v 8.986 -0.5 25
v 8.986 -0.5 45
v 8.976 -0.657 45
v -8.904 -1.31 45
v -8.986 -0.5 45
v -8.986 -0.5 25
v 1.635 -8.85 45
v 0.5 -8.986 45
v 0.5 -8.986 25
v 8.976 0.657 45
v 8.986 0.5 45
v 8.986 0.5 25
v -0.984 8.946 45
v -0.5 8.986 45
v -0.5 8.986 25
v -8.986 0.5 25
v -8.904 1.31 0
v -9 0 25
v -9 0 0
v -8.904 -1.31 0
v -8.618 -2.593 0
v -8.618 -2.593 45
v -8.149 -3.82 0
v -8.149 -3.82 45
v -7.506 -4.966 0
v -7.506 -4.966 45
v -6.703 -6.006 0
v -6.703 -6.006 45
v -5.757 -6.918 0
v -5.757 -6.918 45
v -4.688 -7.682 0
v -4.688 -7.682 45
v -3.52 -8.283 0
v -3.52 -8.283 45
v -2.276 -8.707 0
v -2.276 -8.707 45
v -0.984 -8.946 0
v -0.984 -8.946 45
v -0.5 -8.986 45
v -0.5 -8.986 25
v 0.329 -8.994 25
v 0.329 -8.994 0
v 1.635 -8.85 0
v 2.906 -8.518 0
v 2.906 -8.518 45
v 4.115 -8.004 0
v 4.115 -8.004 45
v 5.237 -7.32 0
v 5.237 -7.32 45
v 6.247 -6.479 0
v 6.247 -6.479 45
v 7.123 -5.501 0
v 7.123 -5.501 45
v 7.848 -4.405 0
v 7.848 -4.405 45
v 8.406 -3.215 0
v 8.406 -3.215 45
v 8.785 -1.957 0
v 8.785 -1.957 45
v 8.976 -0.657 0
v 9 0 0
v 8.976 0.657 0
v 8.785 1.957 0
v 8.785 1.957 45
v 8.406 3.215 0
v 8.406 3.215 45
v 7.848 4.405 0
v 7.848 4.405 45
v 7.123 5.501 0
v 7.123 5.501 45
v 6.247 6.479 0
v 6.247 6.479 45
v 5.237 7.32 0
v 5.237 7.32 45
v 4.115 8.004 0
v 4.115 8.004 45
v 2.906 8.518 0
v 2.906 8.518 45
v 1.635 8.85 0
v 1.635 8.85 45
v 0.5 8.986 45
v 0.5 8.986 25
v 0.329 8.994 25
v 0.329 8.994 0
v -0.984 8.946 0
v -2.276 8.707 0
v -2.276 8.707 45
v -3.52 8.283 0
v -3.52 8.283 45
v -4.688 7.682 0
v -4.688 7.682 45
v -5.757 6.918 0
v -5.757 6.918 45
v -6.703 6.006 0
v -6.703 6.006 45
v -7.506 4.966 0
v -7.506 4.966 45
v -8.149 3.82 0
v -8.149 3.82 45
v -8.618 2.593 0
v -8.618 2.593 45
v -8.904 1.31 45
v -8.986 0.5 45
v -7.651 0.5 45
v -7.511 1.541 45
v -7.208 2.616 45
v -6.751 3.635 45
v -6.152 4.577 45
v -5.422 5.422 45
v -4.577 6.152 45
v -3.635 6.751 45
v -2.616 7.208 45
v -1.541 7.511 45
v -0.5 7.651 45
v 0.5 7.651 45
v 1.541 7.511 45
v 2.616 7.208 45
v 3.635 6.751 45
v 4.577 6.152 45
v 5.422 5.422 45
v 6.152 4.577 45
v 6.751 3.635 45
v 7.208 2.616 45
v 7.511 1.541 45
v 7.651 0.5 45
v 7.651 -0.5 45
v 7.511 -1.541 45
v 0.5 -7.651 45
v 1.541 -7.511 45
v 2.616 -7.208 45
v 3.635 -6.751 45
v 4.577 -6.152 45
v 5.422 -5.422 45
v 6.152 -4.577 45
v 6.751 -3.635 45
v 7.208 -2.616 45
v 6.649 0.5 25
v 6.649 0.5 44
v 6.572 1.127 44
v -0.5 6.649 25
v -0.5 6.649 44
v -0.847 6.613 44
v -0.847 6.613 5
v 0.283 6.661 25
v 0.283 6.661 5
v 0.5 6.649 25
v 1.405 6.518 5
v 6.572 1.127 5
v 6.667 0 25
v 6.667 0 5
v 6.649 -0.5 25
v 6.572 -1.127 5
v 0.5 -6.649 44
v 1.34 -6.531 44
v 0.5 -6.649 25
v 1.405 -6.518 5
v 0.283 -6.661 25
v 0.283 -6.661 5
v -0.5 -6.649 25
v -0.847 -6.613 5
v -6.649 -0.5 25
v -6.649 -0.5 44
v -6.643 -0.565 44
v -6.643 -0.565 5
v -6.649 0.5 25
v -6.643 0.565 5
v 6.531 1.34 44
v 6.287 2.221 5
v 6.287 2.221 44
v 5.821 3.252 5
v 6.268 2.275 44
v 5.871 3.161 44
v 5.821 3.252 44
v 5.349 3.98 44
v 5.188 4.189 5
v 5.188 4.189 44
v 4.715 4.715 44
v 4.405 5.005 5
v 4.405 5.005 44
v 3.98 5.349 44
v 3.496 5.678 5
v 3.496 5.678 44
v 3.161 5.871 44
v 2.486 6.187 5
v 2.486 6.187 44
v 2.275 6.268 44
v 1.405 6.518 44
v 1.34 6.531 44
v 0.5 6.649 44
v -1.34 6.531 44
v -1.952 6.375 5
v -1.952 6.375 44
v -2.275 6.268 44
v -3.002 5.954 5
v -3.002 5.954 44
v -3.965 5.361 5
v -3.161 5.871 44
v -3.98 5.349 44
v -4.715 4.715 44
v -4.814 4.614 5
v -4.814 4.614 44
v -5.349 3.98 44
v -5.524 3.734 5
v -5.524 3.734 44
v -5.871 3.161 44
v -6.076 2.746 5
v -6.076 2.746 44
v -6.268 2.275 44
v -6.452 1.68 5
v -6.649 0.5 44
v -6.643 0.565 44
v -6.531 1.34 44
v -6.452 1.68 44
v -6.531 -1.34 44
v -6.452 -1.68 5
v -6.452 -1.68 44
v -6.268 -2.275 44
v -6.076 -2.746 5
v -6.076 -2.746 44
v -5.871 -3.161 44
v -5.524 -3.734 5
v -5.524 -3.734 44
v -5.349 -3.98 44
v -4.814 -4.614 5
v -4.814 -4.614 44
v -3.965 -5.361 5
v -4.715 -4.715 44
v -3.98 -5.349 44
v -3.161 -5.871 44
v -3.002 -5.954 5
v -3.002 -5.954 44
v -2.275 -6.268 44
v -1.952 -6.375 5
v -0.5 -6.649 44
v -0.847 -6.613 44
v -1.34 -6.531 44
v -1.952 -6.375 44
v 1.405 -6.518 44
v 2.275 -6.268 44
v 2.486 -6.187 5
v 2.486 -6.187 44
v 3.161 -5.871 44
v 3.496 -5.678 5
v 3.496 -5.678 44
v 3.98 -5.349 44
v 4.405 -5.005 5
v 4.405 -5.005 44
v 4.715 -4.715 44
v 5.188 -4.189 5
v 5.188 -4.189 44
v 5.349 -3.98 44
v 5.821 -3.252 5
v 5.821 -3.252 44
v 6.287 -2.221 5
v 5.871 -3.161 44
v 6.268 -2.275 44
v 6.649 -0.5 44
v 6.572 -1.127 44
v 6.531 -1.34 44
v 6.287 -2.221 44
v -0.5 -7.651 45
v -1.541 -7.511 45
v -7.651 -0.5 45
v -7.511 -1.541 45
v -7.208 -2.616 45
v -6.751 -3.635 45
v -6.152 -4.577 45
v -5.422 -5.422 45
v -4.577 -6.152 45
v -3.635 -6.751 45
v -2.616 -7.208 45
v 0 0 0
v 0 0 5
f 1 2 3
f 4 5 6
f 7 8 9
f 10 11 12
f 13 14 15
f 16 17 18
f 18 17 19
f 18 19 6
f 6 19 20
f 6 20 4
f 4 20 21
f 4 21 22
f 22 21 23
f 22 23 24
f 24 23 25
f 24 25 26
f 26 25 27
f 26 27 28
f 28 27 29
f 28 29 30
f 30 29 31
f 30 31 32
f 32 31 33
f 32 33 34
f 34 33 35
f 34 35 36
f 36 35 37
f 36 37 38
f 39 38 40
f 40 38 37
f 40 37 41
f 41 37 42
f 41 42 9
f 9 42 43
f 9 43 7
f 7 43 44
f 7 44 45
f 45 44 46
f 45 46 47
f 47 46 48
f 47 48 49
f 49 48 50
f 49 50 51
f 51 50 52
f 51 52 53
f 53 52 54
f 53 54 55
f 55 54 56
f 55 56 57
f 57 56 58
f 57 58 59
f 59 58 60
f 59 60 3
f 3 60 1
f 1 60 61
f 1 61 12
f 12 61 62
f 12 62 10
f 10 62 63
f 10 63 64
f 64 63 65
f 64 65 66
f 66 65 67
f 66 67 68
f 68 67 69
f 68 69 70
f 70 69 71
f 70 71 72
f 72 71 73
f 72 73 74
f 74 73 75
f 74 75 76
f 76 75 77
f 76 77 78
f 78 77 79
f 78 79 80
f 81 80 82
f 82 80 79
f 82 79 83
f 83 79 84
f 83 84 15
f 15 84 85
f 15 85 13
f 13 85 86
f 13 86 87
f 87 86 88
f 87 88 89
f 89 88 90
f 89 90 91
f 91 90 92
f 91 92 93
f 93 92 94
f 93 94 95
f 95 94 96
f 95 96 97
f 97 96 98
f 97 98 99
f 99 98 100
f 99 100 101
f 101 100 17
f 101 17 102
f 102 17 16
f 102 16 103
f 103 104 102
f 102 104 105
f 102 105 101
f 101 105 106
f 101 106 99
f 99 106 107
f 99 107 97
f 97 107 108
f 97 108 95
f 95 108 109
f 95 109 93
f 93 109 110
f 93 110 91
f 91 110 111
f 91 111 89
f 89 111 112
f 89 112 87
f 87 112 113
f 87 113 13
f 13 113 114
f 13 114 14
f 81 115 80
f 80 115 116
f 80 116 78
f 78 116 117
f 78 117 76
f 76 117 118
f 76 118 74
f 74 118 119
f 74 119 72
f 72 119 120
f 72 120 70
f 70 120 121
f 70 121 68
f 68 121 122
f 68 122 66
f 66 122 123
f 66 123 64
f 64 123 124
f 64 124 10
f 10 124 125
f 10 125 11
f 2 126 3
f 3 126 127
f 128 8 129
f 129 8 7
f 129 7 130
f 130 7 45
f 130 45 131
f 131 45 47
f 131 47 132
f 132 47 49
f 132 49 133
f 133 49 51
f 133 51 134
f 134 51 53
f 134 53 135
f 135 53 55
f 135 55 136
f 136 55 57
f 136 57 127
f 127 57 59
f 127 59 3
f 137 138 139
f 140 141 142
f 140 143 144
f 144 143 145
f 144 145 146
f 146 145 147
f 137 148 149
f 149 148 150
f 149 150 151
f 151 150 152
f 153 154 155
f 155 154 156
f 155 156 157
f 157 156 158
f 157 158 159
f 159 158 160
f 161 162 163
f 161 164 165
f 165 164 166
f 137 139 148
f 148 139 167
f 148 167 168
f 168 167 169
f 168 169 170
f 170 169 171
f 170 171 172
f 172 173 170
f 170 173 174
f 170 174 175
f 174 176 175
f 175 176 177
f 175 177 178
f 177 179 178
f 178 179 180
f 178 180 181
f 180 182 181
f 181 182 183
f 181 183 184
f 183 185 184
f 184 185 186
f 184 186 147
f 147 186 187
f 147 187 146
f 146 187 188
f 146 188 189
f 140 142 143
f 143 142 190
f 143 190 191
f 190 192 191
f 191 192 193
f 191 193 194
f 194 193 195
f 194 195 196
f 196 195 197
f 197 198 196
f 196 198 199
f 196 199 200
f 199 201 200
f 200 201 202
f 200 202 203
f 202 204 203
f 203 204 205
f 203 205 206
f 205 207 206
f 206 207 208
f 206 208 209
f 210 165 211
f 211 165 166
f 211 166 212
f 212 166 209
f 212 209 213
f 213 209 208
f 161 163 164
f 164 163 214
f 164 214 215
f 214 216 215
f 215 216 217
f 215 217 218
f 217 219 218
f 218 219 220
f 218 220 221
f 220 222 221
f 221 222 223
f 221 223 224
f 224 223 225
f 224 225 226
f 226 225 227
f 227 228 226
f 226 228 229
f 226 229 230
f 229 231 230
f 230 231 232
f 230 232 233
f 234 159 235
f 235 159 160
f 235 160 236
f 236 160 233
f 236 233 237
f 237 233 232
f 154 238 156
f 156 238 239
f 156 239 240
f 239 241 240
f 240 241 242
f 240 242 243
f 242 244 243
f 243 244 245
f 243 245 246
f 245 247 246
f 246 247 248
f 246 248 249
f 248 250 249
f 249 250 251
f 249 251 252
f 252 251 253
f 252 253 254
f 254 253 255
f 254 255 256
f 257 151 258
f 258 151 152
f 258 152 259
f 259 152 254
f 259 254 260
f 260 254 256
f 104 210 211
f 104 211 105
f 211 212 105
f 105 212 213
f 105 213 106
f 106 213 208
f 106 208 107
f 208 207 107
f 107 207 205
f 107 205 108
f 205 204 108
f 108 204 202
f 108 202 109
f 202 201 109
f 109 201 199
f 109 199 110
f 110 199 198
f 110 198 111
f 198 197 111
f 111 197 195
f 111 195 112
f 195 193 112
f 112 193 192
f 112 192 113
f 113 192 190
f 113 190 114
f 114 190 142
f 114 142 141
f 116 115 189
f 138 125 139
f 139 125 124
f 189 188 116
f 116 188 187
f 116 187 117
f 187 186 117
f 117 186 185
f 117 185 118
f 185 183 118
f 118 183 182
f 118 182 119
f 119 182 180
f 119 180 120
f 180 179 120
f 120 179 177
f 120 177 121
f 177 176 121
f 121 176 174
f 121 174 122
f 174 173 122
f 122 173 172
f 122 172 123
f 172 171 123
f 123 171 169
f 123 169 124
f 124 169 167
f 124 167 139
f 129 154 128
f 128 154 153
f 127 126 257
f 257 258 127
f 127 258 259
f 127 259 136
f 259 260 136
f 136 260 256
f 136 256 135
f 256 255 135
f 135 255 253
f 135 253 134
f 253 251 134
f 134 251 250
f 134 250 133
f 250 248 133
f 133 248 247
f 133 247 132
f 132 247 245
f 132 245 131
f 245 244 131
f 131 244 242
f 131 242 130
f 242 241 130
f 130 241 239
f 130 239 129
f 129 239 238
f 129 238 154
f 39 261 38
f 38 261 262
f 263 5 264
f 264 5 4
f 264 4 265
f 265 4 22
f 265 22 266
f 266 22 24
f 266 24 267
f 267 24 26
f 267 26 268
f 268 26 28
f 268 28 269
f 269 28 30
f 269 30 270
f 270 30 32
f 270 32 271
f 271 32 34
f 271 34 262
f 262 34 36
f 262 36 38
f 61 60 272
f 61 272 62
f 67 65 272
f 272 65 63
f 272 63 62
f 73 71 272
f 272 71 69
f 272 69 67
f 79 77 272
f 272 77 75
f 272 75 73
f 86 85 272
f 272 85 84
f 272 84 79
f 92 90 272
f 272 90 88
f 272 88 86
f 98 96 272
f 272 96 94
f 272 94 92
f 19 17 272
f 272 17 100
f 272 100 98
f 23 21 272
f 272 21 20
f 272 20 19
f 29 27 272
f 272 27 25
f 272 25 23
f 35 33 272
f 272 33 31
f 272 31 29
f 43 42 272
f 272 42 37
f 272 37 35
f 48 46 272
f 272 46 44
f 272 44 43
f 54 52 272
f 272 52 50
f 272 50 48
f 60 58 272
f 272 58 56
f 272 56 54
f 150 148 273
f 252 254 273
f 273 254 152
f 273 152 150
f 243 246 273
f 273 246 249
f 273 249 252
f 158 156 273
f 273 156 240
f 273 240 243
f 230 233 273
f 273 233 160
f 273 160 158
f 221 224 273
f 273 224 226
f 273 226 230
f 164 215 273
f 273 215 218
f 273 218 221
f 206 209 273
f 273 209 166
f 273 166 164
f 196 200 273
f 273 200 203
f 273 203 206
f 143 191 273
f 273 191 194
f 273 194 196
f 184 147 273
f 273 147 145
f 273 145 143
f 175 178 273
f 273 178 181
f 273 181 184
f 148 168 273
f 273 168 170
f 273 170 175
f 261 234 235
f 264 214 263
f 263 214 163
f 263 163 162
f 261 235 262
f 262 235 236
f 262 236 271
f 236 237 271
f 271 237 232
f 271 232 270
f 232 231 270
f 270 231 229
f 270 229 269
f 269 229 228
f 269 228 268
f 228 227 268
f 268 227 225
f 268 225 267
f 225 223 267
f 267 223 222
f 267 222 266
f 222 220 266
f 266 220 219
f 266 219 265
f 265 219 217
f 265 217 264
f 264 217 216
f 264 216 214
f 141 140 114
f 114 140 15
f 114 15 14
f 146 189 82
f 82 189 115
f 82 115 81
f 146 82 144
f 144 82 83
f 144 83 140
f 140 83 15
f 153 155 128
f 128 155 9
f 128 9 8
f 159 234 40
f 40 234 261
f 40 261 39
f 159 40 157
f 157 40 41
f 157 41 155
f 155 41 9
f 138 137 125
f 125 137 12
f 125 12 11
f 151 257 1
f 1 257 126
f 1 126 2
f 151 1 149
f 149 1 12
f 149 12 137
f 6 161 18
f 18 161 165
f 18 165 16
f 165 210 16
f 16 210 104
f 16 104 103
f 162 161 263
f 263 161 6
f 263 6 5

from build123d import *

# Parameters (mm, degrees)
SKETCH1_R           = 9
BOSS_EXTRUDE1_DEPTH = 45
SKETCH2_R           = 6.6675
CUT_EXTRUDE1_DEPTH  = 40
CHAMFER1_SIZE       = 1
SKETCH3_W           = 22.613634382
SKETCH3_H           = 1
SKETCH3_W_2         = 1
SKETCH3_H_2         = 23.145081594
CUT_EXTRUDE2_DEPTH  = 20


with BuildPart() as part:
    # Sketch1 → Boss-Extrude1 (new body)
    with BuildSketch(Plane.XY):
        with Locations(Location((0, 0, 0), (0, 0, 180))):
            Circle(SKETCH1_R)
    extrude(amount=BOSS_EXTRUDE1_DEPTH)

    # Sketch2 → Cut-Extrude1 (cut)
    with BuildSketch(Plane.XY.offset(45)):
        Circle(SKETCH2_R)
    extrude(amount=-CUT_EXTRUDE1_DEPTH, mode=Mode.SUBTRACT)

    # Chamfer1
    chamfer1_edges = [part.edges().sort_by_distance(p)[0] for p in [
        (-6.6675, 0, 45),
    ]]
    chamfer(chamfer1_edges, length=CHAMFER1_SIZE)

    # Sketch3 → Cut-Extrude2 (cut)
    with BuildSketch(Plane.XY.offset(45)):
        Rectangle(SKETCH3_W, SKETCH3_H)
        Rectangle(SKETCH3_W_2, SKETCH3_H_2)
    extrude(amount=-CUT_EXTRUDE2_DEPTH, mode=Mode.SUBTRACT)


solid = part.part
